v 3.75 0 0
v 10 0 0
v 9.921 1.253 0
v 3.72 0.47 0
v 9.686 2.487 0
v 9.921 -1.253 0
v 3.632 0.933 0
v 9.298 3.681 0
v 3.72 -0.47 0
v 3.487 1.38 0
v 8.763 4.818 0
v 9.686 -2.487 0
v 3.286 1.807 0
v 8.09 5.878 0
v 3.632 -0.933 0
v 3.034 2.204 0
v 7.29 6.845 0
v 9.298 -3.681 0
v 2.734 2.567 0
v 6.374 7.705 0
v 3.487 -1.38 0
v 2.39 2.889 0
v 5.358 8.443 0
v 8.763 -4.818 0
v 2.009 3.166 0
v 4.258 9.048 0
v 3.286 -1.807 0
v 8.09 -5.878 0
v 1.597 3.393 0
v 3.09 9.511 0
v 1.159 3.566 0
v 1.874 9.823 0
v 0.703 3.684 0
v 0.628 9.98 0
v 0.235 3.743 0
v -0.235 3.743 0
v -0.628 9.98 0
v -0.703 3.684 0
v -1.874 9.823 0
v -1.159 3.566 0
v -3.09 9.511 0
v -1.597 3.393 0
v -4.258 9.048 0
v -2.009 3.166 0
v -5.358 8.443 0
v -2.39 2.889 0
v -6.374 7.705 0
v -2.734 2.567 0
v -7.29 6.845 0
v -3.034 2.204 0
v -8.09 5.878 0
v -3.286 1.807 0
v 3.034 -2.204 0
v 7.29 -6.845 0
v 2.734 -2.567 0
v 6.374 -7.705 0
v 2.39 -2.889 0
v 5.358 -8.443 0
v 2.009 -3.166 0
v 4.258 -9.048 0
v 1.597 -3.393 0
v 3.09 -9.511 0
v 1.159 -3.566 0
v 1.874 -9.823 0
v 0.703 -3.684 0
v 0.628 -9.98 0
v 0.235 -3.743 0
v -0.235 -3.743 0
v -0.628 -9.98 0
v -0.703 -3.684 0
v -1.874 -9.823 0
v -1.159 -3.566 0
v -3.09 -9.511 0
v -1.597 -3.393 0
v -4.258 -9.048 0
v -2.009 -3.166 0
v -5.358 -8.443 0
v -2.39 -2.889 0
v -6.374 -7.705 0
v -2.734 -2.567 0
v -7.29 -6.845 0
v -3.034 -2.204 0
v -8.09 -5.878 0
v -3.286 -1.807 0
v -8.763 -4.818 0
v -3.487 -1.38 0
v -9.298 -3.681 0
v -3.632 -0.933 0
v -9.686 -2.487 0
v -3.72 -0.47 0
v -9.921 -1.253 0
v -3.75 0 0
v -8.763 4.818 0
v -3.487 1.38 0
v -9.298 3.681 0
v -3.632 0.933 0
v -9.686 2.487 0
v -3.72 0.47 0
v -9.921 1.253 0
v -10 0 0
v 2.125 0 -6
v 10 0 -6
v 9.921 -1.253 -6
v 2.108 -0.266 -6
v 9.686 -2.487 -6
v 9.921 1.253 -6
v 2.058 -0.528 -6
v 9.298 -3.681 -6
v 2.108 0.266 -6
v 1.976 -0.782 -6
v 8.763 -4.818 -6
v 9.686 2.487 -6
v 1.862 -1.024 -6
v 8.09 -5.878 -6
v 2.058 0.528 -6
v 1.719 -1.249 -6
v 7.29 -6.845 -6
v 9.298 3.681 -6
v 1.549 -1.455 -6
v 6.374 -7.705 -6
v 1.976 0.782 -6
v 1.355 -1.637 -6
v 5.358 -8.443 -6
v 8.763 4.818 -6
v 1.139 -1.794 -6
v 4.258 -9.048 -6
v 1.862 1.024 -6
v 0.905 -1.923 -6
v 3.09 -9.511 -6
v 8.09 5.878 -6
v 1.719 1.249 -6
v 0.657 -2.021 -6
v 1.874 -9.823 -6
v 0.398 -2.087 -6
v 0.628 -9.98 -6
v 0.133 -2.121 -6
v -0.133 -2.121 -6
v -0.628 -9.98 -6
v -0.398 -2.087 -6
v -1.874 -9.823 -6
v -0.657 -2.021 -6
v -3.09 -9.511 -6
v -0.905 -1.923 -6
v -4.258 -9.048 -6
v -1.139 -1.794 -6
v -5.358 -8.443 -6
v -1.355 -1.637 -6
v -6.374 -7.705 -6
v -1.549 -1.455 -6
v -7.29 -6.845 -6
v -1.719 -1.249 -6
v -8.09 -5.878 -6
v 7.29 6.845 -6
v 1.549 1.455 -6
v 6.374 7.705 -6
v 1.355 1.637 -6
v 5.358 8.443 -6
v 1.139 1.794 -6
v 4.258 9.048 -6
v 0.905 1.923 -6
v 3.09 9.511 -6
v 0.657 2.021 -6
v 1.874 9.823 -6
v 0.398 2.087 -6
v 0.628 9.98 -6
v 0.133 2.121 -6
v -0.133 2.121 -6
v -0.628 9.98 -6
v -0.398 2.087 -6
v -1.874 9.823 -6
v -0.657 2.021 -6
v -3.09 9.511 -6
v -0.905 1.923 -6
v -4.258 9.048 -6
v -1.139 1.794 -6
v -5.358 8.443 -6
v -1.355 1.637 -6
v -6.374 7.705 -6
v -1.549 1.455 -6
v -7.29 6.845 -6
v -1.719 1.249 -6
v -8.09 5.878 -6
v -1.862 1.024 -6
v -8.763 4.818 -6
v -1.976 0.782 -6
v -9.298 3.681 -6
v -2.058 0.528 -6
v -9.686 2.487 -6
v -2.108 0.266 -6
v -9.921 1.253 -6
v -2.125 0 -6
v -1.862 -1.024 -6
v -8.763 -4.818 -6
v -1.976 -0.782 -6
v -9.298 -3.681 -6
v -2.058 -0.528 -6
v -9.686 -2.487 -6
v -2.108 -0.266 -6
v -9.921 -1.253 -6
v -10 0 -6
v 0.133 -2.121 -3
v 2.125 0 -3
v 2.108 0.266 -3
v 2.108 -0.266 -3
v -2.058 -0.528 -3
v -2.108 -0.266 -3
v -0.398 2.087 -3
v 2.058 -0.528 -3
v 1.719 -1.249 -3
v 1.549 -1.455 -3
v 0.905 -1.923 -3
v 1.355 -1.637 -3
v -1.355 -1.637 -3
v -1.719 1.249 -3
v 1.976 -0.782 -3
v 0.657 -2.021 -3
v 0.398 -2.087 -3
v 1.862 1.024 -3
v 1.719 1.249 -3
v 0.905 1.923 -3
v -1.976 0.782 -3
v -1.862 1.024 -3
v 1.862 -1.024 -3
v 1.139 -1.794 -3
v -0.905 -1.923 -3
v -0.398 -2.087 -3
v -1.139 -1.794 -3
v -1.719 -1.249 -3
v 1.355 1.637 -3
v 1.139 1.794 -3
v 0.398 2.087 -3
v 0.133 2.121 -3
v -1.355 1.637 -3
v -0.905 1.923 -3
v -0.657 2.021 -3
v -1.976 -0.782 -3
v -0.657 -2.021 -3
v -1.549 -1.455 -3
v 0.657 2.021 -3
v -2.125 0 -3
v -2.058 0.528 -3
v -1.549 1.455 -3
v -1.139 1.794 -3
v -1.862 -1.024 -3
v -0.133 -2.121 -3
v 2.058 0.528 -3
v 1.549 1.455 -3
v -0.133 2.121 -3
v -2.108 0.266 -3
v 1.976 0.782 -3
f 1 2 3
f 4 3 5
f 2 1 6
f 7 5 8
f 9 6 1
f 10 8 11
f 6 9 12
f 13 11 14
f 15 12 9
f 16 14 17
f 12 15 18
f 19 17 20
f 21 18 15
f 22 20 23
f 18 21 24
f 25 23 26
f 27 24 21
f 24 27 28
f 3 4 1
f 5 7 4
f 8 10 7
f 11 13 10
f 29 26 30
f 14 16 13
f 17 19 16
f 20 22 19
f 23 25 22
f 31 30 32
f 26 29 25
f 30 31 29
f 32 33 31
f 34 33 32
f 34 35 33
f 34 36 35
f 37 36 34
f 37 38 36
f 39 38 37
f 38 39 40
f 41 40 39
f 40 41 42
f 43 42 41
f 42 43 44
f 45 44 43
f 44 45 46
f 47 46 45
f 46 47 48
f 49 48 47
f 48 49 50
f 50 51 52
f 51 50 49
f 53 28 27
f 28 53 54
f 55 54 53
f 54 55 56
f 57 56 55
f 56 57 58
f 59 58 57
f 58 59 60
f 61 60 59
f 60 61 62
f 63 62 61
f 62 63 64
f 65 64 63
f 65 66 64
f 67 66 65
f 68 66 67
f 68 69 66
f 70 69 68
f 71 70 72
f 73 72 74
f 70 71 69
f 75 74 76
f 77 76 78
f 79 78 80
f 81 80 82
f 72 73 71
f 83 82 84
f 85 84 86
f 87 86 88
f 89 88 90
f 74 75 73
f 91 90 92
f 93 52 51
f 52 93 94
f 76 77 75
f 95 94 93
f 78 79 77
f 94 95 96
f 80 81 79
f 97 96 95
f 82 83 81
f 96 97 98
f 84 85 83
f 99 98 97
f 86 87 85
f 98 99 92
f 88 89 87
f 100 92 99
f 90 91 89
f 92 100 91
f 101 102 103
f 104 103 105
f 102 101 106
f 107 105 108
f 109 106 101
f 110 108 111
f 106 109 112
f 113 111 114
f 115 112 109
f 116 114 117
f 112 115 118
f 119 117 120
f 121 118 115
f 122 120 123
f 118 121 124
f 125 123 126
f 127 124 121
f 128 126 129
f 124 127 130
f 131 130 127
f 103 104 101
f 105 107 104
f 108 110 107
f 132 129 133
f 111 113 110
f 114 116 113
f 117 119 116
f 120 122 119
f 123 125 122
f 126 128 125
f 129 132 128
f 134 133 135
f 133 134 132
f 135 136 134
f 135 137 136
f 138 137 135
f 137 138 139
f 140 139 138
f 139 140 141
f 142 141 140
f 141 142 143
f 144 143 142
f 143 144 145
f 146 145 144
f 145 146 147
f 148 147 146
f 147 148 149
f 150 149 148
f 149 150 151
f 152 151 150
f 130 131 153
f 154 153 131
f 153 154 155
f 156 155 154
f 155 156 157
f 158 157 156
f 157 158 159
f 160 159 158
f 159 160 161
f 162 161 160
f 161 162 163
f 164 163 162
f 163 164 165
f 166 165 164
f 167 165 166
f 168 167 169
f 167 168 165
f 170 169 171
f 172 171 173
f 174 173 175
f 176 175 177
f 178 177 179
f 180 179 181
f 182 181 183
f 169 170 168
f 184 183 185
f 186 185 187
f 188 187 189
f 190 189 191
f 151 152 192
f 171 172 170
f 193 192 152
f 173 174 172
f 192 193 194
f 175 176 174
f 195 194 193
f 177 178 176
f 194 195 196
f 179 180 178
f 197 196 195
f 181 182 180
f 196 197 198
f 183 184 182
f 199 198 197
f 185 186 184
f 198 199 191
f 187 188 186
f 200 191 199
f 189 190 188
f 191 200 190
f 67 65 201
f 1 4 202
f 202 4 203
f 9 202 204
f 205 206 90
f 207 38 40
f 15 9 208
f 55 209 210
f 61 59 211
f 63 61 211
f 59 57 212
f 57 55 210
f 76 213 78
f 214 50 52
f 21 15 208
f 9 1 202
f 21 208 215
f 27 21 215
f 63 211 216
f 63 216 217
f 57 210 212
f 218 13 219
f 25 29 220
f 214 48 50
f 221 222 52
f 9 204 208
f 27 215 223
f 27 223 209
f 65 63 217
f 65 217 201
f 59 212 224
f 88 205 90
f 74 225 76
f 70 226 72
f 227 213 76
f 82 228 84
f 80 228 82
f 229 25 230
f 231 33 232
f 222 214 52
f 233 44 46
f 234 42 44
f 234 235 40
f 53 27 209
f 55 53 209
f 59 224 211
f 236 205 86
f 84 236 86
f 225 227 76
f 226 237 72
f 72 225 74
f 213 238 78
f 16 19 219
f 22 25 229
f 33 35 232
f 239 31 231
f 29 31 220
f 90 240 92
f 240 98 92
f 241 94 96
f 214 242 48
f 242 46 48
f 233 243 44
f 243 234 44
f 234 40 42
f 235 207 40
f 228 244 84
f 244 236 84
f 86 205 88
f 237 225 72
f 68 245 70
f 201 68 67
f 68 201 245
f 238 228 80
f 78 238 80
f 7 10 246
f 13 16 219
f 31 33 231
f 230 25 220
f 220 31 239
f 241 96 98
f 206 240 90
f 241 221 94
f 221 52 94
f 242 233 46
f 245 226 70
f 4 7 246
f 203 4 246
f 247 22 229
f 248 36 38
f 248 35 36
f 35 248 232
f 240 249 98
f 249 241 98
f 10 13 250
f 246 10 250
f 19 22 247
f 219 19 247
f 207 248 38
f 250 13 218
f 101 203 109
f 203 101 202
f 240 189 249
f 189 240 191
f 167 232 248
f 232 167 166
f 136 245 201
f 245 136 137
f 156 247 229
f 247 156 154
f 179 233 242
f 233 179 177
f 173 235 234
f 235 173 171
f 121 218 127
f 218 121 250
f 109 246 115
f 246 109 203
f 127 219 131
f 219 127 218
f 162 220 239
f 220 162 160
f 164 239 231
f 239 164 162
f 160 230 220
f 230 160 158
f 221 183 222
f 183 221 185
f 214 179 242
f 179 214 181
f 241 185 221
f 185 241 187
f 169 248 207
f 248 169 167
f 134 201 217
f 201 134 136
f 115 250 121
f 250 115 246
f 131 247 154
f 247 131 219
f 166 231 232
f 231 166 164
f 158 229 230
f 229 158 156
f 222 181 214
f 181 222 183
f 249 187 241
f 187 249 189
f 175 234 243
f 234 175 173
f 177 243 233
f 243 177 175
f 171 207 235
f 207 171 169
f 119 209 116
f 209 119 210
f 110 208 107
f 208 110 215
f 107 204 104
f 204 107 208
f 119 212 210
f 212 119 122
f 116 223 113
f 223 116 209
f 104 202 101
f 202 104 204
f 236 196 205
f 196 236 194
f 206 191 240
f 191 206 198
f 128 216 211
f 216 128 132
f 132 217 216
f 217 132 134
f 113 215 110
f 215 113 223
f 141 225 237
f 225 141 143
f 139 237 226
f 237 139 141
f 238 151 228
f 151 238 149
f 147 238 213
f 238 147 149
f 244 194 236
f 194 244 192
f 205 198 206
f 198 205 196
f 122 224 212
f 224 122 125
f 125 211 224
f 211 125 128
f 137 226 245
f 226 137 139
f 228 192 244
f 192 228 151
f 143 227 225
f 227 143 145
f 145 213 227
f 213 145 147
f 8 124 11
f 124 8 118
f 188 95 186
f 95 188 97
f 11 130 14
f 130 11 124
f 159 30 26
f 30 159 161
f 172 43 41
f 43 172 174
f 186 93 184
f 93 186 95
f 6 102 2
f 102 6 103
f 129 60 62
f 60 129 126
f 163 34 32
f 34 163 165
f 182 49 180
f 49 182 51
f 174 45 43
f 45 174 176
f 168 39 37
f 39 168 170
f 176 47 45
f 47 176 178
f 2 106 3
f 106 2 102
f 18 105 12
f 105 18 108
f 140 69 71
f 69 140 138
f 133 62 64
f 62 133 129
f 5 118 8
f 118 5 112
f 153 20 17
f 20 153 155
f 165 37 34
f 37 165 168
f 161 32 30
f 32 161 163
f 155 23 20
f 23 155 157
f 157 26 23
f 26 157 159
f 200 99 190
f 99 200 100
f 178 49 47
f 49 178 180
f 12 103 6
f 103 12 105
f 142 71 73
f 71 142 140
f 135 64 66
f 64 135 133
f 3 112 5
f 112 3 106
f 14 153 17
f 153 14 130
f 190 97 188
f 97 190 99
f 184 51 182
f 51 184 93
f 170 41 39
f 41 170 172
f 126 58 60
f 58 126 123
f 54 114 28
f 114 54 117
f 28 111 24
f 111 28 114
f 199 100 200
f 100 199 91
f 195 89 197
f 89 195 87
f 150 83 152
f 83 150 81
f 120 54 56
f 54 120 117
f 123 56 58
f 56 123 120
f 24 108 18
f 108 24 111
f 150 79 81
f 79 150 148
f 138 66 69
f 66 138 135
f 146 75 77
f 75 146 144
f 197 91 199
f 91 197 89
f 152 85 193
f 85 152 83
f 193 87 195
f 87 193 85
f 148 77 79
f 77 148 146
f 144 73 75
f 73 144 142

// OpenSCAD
$fn = 50;


difference() {
	union() {
		translate(v = [0, 0, -6.0000000000]) {
			cylinder(h = 6, r = 10.0000000000);
		}
		cylinder(h = 0, r = 13.0000000000);
	}
	union() {
		translate(v = [0, 0, 0]) {
			rotate(a = [0, 0, 0]) {
				difference() {
					union() {
						#translate(v = [0, 0, -6.0000000000]) {
							cylinder(h = 6, r = 2.0000000000);
						}
						#translate(v = [0, 0, -3]) {
							cylinder(h = 3, r1 = 2.1250000000, r2 = 3.7500000000);
						}
						#translate(v = [0, 0, -6.0000000000]) {
							cylinder(h = 6, r = 2.1250000000);
						}
						#translate(v = [0, 0, -6.0000000000]) {
							cylinder(h = 6, r = 2.0000000000);
						}
					}
					union();
				}
			}
		}
	}
}
